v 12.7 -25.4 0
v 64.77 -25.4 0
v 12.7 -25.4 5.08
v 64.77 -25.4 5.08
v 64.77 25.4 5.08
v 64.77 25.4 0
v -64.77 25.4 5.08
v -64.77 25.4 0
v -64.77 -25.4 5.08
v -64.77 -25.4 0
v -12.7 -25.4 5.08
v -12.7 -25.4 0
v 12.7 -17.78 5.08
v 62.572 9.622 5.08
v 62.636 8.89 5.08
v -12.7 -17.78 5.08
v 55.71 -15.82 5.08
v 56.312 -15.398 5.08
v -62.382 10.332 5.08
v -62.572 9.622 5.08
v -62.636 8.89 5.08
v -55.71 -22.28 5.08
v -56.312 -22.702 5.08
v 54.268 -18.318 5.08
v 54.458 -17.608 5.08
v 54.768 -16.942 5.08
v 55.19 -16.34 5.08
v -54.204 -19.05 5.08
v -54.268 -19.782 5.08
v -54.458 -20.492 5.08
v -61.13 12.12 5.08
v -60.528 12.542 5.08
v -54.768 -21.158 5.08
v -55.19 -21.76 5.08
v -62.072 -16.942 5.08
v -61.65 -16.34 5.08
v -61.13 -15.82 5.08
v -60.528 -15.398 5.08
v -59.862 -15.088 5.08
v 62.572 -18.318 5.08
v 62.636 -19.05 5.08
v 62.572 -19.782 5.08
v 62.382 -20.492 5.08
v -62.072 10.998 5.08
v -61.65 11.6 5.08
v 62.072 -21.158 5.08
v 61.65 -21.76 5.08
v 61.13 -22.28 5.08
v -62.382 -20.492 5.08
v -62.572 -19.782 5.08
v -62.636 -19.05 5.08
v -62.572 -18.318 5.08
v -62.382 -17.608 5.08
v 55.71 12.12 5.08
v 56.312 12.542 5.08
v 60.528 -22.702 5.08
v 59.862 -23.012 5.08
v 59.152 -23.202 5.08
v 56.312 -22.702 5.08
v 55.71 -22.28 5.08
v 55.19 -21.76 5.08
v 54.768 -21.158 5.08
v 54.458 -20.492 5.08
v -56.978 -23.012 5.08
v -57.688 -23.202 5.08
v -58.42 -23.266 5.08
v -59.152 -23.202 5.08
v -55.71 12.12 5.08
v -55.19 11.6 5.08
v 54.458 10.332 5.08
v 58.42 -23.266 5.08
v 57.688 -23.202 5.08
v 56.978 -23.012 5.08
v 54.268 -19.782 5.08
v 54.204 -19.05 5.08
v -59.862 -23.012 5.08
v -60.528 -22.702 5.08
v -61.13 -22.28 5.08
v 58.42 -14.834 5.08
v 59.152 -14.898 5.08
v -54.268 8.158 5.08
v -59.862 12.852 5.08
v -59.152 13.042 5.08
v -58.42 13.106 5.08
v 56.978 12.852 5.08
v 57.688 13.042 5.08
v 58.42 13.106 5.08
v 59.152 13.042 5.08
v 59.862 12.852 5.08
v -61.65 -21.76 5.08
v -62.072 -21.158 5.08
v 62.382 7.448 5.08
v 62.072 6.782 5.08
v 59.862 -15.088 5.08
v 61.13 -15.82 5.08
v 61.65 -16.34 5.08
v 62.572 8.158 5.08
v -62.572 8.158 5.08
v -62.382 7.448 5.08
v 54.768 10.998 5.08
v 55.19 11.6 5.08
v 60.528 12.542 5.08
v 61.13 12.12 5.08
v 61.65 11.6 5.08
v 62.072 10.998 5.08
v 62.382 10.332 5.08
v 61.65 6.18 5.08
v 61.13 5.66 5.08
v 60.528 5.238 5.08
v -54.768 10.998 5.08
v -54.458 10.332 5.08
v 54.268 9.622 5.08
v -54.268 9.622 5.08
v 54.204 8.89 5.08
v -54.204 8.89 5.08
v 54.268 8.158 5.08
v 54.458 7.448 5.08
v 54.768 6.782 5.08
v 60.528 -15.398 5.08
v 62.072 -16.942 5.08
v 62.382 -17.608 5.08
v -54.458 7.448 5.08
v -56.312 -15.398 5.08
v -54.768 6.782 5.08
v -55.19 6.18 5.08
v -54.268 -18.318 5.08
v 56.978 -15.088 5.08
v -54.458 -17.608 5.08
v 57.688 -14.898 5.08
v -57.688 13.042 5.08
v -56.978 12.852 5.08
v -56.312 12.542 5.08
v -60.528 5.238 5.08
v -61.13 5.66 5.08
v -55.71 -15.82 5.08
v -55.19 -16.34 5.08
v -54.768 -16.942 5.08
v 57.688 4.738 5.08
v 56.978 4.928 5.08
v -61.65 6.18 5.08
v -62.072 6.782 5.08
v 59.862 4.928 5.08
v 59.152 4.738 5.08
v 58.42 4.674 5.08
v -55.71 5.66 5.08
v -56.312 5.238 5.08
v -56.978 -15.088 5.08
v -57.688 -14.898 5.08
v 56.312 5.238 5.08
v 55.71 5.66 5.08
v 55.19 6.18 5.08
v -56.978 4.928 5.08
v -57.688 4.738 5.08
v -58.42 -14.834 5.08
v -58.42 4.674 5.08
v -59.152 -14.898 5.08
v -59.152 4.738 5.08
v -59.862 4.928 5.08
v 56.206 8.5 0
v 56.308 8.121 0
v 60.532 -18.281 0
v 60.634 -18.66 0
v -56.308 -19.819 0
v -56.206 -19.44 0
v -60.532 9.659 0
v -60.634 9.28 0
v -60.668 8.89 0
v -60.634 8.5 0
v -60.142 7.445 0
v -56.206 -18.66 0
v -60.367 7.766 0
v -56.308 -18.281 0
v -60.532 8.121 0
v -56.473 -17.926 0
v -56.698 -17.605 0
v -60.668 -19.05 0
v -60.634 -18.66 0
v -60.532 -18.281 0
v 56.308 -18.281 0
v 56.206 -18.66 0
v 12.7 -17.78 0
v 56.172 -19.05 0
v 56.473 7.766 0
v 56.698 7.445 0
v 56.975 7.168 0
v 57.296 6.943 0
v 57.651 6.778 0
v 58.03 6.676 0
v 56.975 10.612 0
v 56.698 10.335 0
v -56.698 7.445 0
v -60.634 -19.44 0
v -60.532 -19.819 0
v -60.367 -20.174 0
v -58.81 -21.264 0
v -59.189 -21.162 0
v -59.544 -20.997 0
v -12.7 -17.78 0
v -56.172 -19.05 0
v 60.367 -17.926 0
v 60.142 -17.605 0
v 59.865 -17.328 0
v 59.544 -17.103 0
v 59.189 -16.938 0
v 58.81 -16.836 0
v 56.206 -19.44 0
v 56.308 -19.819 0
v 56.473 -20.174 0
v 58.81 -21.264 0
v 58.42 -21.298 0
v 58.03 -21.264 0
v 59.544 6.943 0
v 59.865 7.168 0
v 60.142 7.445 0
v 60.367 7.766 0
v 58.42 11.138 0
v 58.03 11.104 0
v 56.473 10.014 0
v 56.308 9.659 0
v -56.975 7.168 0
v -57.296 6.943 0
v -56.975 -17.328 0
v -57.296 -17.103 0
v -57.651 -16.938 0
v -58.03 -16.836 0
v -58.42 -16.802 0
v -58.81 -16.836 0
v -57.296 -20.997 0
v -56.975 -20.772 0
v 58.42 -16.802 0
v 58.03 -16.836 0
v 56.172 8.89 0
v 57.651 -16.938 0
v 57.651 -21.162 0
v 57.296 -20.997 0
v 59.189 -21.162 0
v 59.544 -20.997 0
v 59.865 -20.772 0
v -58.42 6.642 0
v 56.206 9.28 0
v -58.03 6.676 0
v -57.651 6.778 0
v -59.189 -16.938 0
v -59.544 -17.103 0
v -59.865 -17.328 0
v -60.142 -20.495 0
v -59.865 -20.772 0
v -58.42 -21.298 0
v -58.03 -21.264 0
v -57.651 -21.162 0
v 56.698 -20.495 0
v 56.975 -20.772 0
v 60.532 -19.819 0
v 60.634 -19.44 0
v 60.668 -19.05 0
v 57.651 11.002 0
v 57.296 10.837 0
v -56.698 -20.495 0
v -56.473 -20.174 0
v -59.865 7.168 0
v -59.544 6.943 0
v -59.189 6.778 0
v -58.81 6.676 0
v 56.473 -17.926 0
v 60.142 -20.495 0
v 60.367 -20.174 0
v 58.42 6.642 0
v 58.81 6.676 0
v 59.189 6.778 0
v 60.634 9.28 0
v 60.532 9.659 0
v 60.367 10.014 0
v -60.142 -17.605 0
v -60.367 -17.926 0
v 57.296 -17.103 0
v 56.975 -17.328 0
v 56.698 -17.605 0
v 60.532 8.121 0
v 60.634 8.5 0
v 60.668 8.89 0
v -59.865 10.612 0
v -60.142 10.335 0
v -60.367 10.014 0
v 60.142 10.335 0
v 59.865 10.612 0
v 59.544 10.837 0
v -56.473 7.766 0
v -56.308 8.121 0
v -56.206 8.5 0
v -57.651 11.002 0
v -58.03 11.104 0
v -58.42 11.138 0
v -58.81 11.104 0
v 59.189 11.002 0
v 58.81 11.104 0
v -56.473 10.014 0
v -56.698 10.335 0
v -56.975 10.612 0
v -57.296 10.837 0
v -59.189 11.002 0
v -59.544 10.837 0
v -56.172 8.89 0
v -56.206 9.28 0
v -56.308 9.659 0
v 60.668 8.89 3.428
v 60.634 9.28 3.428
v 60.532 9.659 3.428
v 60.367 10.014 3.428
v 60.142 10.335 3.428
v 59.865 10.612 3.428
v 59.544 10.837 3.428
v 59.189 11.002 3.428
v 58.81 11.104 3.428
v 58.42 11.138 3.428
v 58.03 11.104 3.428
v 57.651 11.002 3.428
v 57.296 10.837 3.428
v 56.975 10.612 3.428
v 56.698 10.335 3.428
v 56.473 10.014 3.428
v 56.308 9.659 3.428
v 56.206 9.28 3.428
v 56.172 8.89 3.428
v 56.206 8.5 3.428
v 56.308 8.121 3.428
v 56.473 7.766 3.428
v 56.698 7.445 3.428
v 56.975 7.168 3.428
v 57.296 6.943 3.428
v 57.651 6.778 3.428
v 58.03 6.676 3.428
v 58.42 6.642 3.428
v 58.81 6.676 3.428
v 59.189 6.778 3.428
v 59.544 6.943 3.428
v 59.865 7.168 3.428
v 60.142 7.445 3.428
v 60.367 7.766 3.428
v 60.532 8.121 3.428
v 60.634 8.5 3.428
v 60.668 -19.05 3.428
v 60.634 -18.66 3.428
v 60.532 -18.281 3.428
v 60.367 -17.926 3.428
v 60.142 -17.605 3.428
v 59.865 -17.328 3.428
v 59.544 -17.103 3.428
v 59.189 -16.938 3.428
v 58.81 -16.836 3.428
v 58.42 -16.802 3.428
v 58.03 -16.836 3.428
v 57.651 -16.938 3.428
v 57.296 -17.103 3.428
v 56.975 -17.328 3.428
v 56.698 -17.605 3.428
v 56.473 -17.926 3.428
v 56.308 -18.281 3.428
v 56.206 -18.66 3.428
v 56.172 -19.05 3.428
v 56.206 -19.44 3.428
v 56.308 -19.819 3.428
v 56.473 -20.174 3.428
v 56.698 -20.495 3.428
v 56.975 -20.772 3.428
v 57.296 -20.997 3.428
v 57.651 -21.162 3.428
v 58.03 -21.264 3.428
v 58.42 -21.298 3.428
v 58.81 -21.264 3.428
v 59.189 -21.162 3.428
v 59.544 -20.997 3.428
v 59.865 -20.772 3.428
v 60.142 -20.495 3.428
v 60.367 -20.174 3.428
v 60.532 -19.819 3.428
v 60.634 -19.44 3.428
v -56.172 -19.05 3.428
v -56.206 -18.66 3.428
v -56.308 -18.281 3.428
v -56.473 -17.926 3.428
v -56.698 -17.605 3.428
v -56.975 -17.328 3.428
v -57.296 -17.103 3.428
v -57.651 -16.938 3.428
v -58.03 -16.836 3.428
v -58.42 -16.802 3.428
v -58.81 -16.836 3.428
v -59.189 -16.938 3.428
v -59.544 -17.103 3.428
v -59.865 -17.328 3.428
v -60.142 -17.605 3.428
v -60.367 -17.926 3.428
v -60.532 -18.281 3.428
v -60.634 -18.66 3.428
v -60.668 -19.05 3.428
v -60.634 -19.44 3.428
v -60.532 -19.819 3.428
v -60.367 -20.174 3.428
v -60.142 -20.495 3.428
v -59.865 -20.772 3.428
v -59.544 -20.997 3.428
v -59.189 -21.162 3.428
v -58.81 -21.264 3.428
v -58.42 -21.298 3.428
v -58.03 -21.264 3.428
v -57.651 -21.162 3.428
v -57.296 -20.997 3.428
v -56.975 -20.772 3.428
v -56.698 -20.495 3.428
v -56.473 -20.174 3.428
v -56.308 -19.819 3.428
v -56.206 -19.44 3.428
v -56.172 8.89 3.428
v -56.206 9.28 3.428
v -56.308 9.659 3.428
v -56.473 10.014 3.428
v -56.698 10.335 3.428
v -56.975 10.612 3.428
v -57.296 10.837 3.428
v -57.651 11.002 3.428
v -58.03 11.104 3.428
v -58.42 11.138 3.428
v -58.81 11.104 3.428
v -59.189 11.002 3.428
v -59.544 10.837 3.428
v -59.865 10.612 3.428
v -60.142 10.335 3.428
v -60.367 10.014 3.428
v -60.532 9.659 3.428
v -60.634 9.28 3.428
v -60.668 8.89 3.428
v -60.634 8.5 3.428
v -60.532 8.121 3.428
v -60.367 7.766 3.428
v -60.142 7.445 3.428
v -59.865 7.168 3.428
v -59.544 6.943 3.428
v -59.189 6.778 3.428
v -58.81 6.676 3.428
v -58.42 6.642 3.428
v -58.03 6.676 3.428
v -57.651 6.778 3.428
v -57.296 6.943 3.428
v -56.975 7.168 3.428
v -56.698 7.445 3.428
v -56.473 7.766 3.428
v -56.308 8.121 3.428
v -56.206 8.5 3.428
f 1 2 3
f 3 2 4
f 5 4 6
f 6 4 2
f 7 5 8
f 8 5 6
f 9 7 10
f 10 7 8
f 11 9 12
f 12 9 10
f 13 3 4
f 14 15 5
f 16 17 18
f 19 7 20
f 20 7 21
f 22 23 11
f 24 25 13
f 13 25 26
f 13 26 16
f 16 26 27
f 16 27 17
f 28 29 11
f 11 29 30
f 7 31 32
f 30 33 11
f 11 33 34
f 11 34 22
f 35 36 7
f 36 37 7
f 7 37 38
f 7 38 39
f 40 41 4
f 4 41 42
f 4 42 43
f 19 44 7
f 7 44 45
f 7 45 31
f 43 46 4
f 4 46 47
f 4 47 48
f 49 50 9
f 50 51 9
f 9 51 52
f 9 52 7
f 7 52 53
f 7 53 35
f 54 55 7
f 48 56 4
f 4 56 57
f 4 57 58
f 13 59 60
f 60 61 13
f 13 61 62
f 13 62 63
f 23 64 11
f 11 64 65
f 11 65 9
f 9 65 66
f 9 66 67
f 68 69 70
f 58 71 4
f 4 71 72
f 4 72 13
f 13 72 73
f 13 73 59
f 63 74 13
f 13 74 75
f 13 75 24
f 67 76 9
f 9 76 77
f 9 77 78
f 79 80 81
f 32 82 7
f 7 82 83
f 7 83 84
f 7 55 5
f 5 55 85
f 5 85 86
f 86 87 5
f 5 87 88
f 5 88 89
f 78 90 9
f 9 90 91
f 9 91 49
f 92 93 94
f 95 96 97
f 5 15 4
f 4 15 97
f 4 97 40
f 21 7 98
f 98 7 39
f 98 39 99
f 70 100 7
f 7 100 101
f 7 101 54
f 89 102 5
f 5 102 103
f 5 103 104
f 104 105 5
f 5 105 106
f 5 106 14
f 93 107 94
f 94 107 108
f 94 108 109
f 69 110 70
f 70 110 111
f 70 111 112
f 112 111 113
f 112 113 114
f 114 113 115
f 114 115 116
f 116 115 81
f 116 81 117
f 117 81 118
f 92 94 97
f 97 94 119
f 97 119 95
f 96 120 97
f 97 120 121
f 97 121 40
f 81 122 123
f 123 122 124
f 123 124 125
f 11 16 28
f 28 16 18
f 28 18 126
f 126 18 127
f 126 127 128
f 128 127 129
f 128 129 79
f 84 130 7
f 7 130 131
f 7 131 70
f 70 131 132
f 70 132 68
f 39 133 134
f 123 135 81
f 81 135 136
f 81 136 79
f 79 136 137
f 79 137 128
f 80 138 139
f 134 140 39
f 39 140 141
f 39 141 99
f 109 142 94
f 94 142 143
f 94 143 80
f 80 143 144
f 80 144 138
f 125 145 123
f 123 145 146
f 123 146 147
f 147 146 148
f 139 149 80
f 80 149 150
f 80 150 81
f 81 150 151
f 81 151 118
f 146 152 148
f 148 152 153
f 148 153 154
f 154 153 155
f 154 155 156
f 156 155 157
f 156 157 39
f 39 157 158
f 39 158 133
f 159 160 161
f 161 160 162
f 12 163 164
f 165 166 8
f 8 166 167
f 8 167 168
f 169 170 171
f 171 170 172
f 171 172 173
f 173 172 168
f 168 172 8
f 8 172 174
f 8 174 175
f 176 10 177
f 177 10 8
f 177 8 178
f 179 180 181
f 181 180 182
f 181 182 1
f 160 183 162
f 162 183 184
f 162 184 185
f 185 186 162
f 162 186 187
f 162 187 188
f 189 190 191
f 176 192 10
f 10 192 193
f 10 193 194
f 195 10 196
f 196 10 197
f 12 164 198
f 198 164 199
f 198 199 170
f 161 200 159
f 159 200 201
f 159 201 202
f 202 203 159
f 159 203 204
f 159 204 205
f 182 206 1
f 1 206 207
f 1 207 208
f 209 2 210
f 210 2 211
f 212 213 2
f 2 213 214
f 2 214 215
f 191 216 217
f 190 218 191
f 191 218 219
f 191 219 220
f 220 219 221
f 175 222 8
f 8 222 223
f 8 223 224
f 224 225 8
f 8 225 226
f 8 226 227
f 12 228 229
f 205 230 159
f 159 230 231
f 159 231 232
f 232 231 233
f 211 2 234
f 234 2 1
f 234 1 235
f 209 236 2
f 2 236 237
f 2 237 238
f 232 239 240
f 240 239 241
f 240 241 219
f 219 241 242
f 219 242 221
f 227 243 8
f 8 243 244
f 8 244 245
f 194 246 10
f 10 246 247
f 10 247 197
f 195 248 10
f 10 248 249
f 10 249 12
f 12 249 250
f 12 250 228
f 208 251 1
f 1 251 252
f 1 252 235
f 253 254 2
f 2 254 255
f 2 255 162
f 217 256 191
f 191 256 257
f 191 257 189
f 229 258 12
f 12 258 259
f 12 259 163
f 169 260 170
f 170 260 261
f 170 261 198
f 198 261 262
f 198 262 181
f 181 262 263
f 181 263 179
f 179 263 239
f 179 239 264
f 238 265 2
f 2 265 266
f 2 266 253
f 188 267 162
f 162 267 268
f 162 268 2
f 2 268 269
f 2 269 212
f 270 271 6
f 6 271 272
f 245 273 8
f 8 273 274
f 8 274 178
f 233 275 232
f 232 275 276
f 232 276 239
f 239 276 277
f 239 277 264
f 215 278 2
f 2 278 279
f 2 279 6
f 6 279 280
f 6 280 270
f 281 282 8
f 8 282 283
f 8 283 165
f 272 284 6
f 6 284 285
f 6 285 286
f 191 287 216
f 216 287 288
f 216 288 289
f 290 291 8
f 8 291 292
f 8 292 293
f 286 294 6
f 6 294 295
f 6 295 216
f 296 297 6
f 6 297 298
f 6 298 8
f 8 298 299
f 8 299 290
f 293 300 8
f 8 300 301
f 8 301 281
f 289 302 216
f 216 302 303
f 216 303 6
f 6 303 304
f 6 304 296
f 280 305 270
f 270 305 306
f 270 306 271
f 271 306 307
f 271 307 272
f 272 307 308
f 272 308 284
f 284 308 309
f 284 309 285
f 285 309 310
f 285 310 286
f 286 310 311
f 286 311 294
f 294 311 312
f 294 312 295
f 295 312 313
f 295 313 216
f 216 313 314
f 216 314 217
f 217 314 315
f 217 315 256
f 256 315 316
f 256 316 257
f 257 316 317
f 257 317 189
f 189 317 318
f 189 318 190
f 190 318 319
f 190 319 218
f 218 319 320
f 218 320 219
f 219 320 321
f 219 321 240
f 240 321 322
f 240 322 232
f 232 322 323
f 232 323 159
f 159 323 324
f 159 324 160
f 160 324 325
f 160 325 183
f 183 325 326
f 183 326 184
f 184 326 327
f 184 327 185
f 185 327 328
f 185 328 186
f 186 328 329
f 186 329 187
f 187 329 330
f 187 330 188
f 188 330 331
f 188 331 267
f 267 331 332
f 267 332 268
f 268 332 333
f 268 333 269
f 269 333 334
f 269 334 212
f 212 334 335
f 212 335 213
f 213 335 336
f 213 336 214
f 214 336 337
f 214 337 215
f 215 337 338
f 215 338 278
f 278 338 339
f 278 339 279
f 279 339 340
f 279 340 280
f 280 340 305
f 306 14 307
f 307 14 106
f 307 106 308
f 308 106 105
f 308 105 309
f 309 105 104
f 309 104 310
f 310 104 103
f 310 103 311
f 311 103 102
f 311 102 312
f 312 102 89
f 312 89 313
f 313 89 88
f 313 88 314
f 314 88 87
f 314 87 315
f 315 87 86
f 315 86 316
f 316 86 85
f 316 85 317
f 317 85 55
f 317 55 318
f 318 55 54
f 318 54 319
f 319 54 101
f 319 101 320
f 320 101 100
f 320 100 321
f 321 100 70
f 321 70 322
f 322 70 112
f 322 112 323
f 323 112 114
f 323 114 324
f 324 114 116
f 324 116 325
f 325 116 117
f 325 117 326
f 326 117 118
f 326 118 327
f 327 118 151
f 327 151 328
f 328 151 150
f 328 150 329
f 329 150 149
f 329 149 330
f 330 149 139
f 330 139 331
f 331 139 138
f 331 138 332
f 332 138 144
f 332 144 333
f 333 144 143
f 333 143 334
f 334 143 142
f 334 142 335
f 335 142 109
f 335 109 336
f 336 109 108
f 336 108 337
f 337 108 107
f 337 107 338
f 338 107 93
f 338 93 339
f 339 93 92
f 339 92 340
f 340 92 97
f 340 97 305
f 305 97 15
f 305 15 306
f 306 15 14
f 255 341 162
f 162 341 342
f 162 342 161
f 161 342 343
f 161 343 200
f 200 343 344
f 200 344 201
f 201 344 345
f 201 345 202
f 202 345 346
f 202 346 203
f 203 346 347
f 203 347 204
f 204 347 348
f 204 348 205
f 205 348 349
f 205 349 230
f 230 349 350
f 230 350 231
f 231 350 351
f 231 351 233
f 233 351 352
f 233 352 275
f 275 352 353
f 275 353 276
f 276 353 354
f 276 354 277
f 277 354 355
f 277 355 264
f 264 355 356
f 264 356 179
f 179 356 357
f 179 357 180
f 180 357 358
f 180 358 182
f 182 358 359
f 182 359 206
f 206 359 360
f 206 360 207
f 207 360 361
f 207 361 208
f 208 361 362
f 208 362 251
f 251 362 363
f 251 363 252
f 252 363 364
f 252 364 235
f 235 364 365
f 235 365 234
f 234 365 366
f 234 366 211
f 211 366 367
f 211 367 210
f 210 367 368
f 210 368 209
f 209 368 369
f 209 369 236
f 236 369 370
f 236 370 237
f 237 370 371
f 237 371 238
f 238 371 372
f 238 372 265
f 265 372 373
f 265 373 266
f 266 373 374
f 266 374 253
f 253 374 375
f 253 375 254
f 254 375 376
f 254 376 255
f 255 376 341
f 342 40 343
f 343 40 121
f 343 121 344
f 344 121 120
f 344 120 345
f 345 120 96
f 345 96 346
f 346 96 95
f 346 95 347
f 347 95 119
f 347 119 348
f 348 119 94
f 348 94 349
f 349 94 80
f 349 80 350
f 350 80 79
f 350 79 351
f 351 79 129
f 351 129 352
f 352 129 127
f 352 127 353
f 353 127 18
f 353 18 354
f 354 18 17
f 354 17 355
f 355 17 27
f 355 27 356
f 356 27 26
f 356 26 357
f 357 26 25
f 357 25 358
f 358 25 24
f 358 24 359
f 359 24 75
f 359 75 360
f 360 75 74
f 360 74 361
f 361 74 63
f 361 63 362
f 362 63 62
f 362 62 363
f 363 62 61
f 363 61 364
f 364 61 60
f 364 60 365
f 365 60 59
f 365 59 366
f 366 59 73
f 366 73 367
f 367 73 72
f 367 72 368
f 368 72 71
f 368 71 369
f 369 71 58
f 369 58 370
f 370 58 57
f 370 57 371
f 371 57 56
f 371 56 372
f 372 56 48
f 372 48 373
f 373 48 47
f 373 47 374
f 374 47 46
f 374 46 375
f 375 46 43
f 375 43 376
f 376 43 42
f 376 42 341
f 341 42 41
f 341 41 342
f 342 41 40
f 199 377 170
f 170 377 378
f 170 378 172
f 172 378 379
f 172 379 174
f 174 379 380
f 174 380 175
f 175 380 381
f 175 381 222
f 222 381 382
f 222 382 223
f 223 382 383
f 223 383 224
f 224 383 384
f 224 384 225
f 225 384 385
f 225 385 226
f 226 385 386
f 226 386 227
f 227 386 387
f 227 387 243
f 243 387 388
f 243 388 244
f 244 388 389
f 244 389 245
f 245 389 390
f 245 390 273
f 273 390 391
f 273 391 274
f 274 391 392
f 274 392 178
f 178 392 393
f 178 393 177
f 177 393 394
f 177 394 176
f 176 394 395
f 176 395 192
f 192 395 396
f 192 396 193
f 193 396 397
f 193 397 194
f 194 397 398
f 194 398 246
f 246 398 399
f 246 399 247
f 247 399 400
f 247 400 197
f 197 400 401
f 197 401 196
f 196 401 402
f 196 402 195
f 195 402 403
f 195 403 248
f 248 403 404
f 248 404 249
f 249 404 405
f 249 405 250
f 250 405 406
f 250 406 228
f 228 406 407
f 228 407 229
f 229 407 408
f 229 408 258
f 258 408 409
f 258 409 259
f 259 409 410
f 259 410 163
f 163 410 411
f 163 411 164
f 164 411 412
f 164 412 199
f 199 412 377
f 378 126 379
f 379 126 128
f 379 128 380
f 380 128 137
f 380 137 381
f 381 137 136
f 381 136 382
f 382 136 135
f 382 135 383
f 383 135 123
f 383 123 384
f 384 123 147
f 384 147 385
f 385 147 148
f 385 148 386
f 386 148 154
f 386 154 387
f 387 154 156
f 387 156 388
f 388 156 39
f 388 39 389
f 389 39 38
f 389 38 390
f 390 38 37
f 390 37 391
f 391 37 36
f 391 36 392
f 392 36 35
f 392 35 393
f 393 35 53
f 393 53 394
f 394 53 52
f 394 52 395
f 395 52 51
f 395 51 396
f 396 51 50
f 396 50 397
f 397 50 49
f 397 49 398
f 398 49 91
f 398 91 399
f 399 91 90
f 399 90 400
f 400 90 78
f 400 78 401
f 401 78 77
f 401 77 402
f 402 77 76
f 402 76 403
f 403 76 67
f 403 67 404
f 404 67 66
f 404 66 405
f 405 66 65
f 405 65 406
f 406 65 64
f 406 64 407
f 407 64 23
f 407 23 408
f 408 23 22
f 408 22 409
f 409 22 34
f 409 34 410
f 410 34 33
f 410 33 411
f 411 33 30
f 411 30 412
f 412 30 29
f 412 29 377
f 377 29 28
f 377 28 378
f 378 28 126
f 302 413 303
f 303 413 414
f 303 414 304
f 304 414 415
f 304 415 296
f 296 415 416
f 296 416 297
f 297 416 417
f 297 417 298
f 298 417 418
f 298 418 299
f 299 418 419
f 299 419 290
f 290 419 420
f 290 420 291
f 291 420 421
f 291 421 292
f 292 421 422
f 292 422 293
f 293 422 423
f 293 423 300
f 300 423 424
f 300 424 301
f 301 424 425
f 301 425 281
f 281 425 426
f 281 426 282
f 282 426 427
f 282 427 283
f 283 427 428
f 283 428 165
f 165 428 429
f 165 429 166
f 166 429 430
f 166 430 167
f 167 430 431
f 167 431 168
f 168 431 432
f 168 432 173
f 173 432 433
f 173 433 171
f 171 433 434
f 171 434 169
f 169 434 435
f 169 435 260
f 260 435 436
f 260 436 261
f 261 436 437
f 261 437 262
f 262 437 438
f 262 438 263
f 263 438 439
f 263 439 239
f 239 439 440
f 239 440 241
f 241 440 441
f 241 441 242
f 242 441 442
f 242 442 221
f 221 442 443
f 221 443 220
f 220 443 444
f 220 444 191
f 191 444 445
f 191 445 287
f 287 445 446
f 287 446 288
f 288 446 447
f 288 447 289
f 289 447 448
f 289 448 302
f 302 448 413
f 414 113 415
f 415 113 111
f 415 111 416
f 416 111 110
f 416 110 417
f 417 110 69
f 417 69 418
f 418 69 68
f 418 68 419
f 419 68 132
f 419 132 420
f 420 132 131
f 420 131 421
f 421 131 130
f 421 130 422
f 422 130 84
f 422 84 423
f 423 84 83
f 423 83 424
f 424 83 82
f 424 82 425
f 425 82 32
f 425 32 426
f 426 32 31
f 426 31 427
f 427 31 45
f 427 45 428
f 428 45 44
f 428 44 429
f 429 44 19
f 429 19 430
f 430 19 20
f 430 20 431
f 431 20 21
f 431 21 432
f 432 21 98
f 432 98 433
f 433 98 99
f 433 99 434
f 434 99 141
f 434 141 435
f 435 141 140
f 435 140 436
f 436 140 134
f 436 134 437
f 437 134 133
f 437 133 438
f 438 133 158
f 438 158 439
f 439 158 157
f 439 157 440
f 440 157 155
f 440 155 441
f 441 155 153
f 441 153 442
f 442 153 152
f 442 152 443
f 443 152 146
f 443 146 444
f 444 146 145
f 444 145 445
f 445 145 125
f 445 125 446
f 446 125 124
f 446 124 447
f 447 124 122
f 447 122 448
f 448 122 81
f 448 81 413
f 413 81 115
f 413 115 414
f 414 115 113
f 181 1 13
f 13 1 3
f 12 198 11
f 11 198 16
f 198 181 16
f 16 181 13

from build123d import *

# Parameters (mm, degrees)
SKETCH1_W                                         = 129.54
SKETCH1_H                                         = 50.8
BOSS_EXTRUDE1_DEPTH                               = 5.08
CSK_FOR_8_FLAT_HEAD_MACHINE_SCREW_100_D           = 4.4958
CSK_FOR_8_FLAT_HEAD_MACHINE_SCREW_100_CSINK_D     = 8.4328
CSK_FOR_8_FLAT_HEAD_MACHINE_SCREW_100_CSINK_ANGLE = 100
SKETCH5_W                                         = 25.4
SKETCH5_H                                         = 7.62
CUT_EXTRUDE1_DEPTH                                = 6.08


with BuildPart() as part:
    # Sketch1 → Boss-Extrude1 (new body)
    with BuildSketch(Plane.XY):
        Rectangle(SKETCH1_W, SKETCH1_H)
    extrude(amount=BOSS_EXTRUDE1_DEPTH)

    # CSK for #8 Flat Head Machine Screw (100)1 (through all)
    with Locations(Plane.XY.offset(5.08)):
        with Locations((-58.42, 8.89), (-58.42, -19.05), (58.42, -19.05), (58.42, 8.89)):
            CounterSinkHole(CSK_FOR_8_FLAT_HEAD_MACHINE_SCREW_100_D / 2, CSK_FOR_8_FLAT_HEAD_MACHINE_SCREW_100_CSINK_D / 2, counter_sink_angle=CSK_FOR_8_FLAT_HEAD_MACHINE_SCREW_100_CSINK_ANGLE)

    # Sketch5 → Cut-Extrude1 (cut, through all)
    with BuildSketch(Plane.XY.offset(5.08)):
        with Locations((0, -21.59)):
            Rectangle(SKETCH5_W, SKETCH5_H)
    extrude(amount=-CUT_EXTRUDE1_DEPTH, mode=Mode.SUBTRACT)


solid = part.part
